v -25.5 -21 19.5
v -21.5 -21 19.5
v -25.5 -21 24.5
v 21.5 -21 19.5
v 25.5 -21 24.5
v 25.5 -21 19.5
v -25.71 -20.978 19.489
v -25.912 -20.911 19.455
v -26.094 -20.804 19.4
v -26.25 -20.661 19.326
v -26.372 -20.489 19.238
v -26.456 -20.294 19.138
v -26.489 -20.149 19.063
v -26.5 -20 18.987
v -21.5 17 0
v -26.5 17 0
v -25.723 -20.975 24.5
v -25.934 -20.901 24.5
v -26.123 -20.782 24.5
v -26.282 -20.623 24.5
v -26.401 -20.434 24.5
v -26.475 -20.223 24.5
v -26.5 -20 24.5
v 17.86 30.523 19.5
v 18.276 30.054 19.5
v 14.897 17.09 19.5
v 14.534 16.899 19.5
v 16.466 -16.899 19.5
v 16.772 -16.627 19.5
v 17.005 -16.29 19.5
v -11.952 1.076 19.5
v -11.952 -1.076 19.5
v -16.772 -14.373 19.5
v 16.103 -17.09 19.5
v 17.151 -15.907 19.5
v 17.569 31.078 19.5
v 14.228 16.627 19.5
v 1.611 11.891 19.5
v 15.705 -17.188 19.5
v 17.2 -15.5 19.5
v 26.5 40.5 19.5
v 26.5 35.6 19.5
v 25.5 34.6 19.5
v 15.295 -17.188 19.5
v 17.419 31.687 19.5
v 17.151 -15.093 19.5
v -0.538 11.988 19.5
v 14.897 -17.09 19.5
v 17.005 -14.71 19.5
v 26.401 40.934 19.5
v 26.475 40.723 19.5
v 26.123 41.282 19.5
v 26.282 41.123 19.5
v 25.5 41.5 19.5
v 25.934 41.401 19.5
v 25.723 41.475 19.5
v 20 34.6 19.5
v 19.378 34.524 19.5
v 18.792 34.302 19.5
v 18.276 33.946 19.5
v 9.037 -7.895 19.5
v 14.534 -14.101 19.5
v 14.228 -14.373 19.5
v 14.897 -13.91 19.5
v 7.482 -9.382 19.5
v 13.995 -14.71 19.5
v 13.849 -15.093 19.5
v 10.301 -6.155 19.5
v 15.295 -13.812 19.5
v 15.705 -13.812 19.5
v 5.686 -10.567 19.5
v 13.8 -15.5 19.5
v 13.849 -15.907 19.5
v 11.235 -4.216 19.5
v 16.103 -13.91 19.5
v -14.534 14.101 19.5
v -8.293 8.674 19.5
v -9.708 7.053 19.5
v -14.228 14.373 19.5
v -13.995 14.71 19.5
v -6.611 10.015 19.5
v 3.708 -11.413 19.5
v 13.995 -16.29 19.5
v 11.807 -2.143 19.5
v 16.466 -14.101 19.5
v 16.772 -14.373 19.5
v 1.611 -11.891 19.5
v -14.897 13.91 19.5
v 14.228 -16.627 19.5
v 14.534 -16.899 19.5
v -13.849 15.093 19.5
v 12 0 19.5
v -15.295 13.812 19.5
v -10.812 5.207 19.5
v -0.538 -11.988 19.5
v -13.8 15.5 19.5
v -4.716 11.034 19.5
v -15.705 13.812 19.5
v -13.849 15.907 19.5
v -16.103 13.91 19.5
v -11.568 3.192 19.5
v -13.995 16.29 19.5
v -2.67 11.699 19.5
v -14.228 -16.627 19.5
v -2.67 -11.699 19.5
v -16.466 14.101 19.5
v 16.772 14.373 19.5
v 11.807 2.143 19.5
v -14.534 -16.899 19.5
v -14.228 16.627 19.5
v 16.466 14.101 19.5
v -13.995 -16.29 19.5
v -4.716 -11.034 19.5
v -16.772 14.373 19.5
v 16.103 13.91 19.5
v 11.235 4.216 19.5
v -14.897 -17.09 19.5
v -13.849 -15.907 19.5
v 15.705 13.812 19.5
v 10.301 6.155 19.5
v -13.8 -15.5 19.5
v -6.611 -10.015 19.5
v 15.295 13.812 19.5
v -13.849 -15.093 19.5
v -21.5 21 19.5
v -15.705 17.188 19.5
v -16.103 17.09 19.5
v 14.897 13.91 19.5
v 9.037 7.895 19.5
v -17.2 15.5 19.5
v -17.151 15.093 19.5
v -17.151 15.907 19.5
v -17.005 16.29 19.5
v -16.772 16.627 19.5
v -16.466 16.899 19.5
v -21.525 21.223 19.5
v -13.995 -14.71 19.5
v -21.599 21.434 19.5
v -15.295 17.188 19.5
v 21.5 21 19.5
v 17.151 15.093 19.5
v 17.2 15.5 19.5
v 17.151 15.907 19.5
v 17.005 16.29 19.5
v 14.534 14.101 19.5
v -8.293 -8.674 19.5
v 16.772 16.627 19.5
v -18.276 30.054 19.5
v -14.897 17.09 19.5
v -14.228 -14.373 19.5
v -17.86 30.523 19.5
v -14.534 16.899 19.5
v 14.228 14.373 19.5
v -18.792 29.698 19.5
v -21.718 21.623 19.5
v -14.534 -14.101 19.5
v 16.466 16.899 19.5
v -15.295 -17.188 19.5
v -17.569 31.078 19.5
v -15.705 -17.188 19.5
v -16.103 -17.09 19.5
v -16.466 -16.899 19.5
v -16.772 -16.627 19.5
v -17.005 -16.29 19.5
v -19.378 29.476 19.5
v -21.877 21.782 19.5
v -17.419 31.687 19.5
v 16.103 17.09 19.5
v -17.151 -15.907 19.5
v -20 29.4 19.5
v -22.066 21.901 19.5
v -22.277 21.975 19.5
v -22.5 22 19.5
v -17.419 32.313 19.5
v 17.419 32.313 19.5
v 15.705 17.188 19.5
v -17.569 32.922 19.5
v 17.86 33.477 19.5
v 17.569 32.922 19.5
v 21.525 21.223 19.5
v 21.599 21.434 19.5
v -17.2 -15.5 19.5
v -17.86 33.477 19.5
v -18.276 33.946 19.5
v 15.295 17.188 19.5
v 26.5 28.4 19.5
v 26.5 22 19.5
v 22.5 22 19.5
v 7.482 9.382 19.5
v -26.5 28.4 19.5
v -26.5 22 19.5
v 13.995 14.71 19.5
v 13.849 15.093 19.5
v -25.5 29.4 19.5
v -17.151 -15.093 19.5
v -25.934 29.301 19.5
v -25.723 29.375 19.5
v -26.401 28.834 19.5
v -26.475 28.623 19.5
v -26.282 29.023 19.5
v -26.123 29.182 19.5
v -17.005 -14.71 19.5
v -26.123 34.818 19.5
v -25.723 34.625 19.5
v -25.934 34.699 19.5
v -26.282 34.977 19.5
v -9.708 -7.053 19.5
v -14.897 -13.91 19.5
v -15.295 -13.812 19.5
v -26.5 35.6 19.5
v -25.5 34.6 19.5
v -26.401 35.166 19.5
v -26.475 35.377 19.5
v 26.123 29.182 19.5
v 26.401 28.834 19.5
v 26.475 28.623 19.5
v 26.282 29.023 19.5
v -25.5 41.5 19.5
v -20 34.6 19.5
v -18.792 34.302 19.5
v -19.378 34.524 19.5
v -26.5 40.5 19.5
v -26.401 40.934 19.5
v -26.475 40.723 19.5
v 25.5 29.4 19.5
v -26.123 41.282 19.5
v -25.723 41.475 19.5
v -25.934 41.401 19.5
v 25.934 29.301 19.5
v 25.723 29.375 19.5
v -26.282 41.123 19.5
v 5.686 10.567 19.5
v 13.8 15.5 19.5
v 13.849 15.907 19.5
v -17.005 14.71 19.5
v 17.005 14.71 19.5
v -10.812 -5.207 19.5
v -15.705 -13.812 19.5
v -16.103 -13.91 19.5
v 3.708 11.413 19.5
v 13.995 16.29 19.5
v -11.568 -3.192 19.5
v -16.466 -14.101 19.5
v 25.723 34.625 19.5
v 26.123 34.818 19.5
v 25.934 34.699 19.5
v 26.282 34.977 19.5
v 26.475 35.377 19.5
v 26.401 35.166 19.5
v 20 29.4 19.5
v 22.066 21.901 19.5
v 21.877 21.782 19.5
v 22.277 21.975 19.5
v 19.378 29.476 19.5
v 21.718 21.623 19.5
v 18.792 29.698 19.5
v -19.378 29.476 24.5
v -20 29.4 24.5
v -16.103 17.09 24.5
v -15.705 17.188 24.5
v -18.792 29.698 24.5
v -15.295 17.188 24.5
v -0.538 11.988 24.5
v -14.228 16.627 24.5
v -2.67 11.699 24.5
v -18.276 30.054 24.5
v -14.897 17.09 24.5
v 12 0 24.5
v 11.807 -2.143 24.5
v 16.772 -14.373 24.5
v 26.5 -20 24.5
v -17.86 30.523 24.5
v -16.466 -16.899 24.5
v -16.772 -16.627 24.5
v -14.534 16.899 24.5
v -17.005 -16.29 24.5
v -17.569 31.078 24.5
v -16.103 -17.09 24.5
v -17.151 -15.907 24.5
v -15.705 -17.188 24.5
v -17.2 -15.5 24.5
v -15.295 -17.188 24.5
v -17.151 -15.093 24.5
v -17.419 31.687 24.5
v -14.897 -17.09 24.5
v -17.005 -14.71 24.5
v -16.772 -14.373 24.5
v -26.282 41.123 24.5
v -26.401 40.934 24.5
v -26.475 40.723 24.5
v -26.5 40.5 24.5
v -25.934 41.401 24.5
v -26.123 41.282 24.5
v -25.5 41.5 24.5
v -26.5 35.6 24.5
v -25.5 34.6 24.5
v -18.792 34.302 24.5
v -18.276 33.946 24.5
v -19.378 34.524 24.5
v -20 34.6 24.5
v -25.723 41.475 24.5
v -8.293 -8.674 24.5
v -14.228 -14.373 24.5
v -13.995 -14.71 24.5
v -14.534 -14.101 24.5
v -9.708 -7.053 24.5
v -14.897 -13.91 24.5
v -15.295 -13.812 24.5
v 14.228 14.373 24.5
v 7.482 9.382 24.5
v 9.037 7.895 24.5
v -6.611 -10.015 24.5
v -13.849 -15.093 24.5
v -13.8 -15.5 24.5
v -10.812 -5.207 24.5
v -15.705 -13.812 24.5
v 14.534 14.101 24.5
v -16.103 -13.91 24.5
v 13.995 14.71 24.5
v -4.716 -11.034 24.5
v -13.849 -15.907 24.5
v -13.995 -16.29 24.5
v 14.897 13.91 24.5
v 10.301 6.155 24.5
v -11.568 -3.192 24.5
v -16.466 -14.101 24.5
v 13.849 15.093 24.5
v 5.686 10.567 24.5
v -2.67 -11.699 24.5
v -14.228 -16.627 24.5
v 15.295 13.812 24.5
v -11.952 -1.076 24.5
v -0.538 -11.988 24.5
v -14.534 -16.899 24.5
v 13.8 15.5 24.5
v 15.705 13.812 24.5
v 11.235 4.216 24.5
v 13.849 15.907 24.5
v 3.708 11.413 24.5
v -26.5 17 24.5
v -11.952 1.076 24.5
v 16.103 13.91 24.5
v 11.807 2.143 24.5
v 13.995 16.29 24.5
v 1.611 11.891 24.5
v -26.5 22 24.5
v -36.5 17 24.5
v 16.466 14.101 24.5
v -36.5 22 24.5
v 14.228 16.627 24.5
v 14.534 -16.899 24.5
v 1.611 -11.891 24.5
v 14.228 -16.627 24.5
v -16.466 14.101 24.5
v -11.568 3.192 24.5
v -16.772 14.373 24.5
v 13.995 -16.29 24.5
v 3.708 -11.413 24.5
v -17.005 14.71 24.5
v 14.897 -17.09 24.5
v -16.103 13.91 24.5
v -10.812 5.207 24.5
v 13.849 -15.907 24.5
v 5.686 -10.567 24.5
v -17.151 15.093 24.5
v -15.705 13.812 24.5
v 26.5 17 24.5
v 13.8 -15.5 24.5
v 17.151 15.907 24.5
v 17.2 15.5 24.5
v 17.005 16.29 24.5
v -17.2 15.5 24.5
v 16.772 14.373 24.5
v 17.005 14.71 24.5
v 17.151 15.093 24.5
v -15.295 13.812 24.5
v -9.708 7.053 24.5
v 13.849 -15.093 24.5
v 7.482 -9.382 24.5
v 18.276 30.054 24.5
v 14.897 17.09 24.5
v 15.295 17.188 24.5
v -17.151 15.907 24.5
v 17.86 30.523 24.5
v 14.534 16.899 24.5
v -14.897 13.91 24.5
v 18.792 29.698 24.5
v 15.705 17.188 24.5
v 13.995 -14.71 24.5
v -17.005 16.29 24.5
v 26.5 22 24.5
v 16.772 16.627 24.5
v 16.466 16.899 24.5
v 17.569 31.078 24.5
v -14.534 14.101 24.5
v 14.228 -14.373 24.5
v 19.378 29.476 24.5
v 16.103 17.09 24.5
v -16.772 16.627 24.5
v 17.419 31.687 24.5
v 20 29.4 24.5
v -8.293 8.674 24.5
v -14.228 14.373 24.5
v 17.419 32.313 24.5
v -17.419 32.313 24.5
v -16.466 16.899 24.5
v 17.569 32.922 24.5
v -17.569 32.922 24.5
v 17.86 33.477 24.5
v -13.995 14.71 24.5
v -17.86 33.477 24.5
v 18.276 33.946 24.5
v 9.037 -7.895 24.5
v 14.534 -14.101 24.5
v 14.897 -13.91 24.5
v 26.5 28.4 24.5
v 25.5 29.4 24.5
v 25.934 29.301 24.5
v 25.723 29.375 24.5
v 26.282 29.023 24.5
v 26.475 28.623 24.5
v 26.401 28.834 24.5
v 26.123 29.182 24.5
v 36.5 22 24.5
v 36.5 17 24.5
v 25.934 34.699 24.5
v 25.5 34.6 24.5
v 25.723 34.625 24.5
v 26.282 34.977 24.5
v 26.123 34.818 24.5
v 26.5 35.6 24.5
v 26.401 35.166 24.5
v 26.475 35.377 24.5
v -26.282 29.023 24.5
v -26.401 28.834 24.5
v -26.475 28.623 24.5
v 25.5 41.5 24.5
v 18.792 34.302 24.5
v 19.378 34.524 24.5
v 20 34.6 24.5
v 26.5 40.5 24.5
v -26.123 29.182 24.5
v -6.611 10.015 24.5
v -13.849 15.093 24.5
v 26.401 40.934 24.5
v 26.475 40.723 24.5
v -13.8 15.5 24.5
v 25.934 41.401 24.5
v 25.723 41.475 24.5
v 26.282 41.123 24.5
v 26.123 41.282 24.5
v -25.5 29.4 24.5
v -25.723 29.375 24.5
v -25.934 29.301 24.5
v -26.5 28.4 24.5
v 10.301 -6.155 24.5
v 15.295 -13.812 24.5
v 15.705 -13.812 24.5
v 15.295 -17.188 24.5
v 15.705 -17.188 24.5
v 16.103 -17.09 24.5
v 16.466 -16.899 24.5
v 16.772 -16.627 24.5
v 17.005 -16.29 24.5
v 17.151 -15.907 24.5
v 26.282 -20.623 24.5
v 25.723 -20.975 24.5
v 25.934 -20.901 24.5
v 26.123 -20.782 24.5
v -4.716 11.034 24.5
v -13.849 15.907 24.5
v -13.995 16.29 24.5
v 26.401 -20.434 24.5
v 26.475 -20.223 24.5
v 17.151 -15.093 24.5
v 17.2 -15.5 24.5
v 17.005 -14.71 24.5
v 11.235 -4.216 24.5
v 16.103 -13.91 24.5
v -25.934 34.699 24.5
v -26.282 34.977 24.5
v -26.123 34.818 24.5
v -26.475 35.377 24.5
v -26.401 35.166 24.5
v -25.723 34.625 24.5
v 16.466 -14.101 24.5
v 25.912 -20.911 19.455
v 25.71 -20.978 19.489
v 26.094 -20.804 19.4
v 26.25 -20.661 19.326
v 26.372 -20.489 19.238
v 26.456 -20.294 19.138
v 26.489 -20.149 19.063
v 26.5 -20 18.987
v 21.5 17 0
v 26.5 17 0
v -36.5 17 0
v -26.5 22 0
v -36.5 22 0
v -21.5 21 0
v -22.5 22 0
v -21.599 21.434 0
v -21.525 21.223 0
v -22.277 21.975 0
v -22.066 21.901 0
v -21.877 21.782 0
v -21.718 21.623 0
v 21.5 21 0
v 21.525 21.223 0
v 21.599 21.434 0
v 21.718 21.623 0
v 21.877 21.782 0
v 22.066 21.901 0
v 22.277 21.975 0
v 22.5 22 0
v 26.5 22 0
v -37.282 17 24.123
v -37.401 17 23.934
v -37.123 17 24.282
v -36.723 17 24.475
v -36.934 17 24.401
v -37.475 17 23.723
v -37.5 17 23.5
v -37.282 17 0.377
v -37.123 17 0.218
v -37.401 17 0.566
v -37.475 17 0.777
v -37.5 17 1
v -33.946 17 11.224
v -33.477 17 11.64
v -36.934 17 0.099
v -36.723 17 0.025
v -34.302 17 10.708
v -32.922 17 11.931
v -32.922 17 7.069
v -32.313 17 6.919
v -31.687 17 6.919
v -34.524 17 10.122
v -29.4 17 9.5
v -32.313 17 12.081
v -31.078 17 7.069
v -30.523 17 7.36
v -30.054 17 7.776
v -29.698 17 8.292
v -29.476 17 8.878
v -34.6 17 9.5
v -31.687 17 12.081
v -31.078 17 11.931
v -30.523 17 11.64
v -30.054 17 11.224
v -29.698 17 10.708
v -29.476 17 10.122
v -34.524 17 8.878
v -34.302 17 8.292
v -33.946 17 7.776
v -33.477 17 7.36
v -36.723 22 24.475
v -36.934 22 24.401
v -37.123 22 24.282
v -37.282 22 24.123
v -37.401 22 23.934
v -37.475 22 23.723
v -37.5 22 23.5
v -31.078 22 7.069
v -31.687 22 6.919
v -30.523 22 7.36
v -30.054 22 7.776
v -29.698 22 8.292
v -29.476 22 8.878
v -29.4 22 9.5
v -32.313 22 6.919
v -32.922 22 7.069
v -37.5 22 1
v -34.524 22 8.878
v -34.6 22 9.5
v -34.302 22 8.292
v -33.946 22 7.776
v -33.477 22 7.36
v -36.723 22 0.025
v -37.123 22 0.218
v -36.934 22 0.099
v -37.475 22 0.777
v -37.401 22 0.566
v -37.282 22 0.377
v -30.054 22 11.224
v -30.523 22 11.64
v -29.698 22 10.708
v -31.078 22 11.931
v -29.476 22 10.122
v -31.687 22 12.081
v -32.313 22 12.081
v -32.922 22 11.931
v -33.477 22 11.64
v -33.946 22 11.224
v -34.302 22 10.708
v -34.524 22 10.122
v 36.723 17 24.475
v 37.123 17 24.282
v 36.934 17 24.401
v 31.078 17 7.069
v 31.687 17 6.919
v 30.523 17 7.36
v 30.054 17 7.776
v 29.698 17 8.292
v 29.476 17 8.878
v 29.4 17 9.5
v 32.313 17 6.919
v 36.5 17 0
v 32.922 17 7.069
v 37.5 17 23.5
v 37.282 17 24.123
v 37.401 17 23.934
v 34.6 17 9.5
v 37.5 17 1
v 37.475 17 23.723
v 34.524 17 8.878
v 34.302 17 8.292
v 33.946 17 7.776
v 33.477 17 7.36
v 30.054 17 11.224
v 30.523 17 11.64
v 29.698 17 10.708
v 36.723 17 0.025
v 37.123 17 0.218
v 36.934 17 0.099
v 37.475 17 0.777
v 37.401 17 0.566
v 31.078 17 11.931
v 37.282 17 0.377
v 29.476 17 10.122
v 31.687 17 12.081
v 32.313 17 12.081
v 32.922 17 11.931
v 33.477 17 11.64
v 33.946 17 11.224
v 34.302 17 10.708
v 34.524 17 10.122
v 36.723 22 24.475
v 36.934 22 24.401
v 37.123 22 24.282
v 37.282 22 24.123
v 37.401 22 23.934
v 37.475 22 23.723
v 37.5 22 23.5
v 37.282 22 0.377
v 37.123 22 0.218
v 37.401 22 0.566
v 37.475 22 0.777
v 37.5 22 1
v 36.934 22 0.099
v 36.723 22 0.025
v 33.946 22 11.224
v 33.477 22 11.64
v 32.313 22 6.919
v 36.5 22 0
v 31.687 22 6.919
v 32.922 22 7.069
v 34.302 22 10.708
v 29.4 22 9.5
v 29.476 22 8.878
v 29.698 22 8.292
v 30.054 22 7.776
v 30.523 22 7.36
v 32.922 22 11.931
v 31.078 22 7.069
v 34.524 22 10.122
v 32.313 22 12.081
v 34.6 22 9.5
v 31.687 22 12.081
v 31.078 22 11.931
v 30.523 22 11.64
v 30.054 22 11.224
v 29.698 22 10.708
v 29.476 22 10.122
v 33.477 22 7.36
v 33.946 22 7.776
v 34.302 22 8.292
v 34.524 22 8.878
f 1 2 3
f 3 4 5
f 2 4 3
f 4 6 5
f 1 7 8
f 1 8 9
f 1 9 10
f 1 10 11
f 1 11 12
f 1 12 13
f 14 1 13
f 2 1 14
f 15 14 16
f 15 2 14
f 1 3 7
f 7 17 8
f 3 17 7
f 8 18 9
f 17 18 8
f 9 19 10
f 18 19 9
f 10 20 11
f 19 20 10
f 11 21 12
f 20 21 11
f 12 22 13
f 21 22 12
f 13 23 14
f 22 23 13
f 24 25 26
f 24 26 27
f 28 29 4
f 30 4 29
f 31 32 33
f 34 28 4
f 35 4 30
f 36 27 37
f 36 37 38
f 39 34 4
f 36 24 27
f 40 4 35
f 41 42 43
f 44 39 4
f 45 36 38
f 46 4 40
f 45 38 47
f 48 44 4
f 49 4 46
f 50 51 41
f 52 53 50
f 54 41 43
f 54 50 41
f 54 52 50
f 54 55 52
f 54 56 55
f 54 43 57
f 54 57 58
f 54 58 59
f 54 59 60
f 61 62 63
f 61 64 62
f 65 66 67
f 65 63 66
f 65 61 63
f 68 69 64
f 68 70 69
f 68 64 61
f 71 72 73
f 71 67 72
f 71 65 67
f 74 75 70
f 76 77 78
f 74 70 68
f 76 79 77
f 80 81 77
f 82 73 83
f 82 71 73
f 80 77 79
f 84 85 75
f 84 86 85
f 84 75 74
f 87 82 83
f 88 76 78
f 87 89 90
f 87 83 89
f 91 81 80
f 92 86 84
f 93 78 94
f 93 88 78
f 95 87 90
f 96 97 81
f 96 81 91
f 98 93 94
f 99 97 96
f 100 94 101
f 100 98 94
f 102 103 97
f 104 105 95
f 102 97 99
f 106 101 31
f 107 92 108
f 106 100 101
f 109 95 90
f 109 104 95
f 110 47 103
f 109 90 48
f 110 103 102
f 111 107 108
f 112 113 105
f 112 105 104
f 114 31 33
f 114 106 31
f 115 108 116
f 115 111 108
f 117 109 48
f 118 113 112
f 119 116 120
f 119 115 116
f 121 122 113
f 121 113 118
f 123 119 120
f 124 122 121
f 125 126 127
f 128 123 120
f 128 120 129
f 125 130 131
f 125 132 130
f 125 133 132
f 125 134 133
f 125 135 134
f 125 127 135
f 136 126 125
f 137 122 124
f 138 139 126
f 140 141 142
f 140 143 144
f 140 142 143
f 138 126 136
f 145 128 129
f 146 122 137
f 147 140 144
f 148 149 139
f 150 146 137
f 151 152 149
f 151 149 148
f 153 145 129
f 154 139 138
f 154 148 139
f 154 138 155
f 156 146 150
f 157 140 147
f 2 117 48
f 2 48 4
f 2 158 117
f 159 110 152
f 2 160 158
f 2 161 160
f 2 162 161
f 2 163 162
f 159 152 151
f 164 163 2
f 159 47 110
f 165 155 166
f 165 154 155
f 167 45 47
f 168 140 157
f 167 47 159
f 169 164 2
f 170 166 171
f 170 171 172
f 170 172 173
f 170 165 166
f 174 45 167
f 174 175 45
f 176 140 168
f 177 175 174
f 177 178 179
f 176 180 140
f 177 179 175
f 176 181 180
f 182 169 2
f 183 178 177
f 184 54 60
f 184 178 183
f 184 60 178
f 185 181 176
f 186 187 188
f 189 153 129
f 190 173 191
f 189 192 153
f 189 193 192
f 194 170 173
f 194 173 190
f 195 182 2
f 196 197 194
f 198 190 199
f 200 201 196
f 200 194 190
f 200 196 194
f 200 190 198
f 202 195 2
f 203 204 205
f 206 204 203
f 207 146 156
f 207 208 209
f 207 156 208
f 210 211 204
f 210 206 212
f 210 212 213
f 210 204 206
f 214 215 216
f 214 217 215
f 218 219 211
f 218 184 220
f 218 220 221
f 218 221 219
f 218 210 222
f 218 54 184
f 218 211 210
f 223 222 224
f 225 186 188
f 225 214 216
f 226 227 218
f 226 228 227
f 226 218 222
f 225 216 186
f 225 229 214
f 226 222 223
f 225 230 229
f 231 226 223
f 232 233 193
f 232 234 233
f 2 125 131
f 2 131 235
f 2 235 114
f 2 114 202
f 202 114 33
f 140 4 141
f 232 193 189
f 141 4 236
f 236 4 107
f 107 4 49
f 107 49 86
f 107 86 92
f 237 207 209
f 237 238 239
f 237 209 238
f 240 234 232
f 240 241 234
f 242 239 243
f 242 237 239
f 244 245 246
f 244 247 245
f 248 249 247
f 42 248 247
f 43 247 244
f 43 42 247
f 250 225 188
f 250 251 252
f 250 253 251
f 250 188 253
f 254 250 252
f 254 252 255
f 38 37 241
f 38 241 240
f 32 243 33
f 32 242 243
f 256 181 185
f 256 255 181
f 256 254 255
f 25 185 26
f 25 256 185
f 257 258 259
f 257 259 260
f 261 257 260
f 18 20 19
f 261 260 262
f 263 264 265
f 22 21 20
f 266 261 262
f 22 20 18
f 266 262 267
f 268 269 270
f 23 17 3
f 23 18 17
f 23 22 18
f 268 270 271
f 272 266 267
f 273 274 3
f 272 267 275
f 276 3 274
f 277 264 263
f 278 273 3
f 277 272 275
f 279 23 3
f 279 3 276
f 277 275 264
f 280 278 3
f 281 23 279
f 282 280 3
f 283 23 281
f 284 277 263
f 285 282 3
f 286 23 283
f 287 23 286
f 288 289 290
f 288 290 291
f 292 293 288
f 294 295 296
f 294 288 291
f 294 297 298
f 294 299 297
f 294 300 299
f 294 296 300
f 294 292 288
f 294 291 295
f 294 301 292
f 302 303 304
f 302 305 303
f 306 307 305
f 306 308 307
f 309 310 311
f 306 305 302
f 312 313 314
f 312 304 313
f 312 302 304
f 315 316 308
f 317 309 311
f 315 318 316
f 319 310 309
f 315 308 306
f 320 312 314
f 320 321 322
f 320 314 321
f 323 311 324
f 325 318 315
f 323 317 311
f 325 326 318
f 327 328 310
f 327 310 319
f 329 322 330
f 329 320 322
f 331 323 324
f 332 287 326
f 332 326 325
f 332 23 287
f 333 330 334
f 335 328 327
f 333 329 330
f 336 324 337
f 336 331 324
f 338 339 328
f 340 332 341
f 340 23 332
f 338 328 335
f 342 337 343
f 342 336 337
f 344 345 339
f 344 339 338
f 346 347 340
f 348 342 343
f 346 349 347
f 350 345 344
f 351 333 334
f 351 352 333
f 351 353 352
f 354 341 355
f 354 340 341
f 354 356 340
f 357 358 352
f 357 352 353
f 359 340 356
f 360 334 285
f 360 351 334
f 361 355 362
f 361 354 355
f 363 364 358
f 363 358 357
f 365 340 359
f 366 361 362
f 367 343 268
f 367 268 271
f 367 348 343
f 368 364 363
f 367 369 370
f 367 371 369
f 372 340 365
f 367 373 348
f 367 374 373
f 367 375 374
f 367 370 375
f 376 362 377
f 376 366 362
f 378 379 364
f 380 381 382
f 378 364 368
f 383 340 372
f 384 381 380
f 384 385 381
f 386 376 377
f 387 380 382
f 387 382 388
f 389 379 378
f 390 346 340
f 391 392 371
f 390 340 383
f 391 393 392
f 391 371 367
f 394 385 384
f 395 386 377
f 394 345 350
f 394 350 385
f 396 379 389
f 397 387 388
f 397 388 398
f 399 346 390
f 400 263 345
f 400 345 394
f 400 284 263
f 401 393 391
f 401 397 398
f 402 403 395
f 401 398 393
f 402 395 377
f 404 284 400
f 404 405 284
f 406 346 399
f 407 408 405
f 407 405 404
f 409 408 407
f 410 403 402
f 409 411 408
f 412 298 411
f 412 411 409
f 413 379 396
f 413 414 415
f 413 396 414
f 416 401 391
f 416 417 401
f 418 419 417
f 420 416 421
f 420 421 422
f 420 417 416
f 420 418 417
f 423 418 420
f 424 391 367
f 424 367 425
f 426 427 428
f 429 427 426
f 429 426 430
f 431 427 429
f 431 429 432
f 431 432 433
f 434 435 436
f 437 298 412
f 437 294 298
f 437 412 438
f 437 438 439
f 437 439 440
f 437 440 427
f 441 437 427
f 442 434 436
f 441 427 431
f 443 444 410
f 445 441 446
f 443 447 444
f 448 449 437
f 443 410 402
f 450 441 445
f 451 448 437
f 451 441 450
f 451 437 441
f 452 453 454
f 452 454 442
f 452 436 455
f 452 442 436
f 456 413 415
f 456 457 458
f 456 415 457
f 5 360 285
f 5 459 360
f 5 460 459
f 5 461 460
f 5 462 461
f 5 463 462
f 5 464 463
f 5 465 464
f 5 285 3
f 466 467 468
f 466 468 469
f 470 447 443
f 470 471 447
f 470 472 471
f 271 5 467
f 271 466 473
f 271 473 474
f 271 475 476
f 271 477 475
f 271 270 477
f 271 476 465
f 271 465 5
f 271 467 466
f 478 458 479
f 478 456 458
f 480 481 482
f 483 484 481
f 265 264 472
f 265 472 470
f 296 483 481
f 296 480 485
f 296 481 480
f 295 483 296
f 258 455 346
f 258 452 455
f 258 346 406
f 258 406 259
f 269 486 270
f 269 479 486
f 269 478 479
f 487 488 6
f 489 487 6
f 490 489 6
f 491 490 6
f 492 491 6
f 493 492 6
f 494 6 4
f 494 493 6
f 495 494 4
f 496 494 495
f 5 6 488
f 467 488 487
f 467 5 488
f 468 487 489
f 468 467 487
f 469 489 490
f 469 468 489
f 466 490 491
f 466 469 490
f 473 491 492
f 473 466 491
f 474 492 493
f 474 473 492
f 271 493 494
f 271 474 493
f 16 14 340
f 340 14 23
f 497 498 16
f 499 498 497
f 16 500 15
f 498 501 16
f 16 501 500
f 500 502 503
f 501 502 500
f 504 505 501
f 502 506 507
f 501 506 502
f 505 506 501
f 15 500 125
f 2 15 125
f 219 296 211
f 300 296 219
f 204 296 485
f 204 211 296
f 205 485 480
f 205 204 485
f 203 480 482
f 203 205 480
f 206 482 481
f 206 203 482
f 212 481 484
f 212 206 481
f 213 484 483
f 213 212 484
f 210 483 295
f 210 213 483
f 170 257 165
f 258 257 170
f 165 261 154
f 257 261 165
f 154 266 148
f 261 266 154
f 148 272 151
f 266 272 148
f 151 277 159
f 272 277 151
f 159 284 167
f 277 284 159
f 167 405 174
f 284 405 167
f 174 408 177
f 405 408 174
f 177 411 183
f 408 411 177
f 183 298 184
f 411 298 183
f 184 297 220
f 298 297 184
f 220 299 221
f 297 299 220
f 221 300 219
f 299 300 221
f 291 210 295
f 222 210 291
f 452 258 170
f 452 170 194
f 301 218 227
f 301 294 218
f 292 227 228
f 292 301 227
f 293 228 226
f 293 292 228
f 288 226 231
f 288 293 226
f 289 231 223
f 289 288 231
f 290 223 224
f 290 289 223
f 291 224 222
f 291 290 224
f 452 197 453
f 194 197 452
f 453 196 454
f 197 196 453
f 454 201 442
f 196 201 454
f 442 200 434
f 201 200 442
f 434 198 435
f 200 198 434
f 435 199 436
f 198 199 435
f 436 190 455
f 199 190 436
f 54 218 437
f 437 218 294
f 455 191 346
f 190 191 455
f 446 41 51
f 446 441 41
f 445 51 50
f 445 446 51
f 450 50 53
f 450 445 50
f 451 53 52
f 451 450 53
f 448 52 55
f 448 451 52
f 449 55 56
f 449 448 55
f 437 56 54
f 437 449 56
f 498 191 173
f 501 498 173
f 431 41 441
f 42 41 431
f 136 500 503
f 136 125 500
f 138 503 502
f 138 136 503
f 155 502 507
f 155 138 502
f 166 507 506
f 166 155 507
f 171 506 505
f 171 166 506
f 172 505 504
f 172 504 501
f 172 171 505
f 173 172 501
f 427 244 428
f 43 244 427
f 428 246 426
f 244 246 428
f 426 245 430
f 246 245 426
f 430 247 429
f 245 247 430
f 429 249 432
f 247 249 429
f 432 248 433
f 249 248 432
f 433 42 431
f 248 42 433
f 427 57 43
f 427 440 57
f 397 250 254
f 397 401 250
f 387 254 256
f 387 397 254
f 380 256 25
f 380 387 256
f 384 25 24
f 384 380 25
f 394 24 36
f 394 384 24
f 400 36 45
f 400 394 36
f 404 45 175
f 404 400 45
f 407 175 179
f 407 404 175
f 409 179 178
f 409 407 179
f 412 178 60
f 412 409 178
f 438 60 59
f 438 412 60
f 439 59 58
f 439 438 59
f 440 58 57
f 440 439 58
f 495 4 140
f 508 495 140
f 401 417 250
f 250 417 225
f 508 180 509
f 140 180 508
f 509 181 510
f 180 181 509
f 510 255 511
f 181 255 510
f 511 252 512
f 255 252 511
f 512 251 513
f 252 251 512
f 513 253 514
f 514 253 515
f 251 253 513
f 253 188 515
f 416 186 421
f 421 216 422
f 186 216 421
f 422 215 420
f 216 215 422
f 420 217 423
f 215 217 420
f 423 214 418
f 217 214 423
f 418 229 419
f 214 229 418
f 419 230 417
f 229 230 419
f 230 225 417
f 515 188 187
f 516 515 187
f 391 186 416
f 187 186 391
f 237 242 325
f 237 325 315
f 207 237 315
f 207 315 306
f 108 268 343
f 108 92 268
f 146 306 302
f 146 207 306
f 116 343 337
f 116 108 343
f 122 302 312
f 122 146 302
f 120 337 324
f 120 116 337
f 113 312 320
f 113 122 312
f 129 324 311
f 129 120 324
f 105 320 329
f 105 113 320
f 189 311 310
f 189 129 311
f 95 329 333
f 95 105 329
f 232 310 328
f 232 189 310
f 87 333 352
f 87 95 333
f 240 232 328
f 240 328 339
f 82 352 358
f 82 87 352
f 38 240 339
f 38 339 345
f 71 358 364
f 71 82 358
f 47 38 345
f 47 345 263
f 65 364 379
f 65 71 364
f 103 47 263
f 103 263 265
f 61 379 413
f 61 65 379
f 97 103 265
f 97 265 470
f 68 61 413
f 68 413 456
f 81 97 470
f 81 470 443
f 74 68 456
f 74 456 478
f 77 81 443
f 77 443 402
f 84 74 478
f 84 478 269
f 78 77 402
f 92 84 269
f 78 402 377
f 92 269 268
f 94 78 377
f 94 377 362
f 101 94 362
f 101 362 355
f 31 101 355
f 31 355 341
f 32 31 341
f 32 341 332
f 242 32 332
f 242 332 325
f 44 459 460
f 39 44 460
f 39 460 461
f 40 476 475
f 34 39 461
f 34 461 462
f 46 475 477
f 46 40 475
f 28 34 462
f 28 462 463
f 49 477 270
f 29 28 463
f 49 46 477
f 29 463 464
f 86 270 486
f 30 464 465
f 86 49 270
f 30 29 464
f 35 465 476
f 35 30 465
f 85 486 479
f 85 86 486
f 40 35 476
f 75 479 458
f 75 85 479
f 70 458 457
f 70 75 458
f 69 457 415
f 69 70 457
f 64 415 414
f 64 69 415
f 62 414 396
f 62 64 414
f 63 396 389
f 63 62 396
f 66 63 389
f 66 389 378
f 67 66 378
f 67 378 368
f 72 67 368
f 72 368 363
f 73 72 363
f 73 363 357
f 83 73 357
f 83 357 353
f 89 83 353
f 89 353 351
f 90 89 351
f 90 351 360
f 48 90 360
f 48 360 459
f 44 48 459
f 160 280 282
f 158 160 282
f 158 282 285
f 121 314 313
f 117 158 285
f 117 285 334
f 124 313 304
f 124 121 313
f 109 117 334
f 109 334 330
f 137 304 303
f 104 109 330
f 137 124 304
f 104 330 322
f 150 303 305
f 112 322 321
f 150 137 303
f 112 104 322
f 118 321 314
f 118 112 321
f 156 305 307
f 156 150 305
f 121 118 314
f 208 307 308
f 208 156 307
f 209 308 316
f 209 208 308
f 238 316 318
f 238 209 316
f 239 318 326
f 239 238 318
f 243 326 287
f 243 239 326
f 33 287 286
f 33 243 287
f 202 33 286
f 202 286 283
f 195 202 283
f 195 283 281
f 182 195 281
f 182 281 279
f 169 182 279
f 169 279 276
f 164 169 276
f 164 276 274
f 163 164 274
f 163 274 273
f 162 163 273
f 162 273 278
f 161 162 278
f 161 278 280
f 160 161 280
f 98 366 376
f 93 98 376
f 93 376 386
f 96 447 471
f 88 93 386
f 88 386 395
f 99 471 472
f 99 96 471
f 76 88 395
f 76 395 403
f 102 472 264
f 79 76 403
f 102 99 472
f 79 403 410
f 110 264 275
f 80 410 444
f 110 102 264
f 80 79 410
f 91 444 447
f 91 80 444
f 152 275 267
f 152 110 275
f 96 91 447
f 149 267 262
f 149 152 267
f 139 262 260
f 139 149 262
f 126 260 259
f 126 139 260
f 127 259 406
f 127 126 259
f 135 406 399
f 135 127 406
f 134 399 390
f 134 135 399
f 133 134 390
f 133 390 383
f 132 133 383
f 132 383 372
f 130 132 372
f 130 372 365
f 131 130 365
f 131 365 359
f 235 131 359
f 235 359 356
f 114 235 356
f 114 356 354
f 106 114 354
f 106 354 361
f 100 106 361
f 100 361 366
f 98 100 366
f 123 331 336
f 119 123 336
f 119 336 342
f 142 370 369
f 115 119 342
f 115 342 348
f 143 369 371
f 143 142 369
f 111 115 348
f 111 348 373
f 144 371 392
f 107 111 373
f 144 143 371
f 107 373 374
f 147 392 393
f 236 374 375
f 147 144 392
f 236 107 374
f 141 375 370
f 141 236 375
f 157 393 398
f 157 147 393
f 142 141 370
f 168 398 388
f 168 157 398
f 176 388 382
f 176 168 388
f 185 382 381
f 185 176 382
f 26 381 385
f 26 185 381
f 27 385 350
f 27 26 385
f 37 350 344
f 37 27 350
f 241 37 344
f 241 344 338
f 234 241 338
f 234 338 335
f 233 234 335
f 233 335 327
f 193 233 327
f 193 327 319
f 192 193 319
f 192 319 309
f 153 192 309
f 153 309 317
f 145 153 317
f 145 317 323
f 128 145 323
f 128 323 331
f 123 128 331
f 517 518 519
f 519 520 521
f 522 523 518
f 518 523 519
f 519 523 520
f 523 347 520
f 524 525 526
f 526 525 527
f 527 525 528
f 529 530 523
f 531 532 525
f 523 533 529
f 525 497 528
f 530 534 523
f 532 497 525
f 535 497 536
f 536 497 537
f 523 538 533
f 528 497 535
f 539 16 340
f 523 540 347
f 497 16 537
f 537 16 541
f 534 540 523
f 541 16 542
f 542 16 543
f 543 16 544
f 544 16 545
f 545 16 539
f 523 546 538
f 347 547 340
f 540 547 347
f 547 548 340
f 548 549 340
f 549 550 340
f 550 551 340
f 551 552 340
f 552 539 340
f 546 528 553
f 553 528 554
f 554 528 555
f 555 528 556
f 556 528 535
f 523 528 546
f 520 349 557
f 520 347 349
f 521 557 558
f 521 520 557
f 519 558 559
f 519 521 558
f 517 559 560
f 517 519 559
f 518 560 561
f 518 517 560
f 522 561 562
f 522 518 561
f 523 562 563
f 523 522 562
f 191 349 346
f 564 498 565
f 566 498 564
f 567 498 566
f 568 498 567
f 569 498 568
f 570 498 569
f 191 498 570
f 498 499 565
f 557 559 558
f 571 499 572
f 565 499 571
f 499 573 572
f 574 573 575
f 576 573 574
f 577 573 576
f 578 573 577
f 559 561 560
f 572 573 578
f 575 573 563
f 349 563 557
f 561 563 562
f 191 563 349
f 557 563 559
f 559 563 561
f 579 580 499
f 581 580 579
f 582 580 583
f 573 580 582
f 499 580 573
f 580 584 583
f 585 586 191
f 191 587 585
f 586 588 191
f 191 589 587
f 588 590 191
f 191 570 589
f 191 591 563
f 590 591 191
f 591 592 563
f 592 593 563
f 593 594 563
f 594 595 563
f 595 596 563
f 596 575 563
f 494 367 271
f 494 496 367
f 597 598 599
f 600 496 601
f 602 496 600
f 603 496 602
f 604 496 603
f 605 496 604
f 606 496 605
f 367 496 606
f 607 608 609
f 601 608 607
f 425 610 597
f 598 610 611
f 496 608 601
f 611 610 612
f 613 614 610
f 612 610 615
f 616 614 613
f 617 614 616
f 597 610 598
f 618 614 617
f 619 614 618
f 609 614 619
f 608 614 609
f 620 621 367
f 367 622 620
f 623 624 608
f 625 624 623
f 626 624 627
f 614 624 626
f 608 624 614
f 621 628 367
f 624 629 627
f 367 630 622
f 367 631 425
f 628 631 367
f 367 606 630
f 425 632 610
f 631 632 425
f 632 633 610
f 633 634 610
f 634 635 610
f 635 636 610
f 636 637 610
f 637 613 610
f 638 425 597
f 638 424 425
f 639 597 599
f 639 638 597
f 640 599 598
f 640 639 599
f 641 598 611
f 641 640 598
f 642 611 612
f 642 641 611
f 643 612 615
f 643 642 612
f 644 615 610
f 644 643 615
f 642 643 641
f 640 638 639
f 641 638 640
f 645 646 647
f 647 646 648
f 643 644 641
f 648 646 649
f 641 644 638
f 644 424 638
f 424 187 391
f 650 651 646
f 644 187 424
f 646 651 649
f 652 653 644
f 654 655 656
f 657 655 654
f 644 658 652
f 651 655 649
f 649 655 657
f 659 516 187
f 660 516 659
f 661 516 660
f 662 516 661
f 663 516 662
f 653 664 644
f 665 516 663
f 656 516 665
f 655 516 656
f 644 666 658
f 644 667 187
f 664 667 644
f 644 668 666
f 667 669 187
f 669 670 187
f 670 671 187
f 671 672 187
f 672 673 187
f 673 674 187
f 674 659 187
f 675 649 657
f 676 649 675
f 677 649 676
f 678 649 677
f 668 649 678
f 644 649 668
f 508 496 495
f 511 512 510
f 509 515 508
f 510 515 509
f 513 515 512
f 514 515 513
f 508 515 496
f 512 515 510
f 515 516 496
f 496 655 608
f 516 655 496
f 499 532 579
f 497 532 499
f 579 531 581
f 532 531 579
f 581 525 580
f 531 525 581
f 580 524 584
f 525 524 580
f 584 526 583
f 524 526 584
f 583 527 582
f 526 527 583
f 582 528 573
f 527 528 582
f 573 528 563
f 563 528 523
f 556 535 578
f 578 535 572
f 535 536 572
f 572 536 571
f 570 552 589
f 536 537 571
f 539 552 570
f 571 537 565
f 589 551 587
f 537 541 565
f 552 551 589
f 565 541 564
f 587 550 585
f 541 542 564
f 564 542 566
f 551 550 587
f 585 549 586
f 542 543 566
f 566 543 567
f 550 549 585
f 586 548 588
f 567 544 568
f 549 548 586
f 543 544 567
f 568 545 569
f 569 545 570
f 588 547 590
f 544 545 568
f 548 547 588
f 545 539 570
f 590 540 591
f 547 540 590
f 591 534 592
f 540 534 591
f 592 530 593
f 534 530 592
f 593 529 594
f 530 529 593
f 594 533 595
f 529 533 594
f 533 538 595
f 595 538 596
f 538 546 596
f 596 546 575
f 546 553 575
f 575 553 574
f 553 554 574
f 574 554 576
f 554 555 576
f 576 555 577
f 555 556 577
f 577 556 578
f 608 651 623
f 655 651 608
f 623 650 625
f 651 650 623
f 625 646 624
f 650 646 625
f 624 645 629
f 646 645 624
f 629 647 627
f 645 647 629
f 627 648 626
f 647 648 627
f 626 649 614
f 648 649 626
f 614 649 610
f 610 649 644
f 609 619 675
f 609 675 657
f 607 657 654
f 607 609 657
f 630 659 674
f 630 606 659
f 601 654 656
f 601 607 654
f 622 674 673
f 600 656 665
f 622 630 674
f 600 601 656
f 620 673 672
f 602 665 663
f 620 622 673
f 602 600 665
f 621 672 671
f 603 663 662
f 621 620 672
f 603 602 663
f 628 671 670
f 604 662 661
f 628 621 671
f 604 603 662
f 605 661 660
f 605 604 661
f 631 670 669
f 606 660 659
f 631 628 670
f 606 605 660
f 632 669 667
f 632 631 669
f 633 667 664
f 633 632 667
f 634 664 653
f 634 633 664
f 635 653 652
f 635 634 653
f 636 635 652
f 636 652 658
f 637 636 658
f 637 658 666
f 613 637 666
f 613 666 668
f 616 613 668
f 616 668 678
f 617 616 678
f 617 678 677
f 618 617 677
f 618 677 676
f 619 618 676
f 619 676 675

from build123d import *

# Parameters (mm, degrees)
SKETCH_R        = 12
SKETCH_R_2      = 1.7
PAD_DEPTH       = 24.5
POCKET_DEPTH    = 19.5
POCKET001_DEPTH = 64.001
POCKET002_DEPTH = 225.811705
SKETCH004_R     = 2.6
POCKET003_DEPTH = 225.811705
FILLET_R        = 1


with BuildPart() as part:
    # Sketch → Pad (new body)
    with BuildSketch(Plane.XY):
        Polygon((-26.5, -21), (26.5, -21), (26.5, 17), (37.5, 17), (37.5, 22), (26.5, 22), (26.5, 41.5), (-26.5, 41.5), (-26.5, 22), (-37.5, 22), (-37.5, 17), (-26.5, 17), align=None)
        Circle(SKETCH_R, mode=Mode.SUBTRACT)
        with Locations((-15.5, 15.5)):
            Circle(SKETCH_R_2, mode=Mode.SUBTRACT)
        with Locations((15.5, 15.5)):
            Circle(SKETCH_R_2, mode=Mode.SUBTRACT)
        with Locations((-15.5, -15.5)):
            Circle(SKETCH_R_2, mode=Mode.SUBTRACT)
        with Locations((15.5, -15.5)):
            Circle(SKETCH_R_2, mode=Mode.SUBTRACT)
    extrude(amount=PAD_DEPTH)

    # Sketch001 (on Face18 of Pad) → Pocket (cut)
    with BuildSketch(Plane(origin=(0, 0, 0), x_dir=(1, 0, 0), z_dir=(0, 0, -1))):
        Polygon((-26.5, -41.5), (26.5, -41.5), (26.5, -22), (21.5, -22), (21.5, 21), (-21.5, 21), (-21.5, -22), (-26.5, -22), align=None)
    extrude(amount=-POCKET_DEPTH, mode=Mode.SUBTRACT)

    # Sketch002 (on Face7 of Pocket) → Pocket001 (cut, through all)
    with BuildSketch(Plane.YZ.offset(26.5)):
        Polygon((17, 0), (-21, 0), (-21, 19.5), align=None)
    extrude(amount=-POCKET001_DEPTH, mode=Mode.SUBTRACT)

    # Sketch003 (on Face6 of Pocket001) → Pocket002 (cut, through all)
    with BuildSketch(Plane.XY.offset(24.5)):
        with BuildLine():
            Line((-26.5, 34.6), (-20, 34.6))
            ThreePointArc((-20, 29.4), (-17.4, 32), (-20, 34.6))
            Line((-20, 29.4), (-26.5, 29.4))
            Line((-26.5, 29.4), (-26.5, 34.6))
        make_face()
    pocket002 = extrude(amount=-POCKET002_DEPTH, mode=Mode.SUBTRACT)

    # Sketch004 (on Face27 of Pocket002) → Pocket003 (cut, through all)
    with BuildSketch(Plane.XZ.offset(-17)):
        with Locations((-32, 9.5)):
            Circle(SKETCH004_R)
    pocket003 = extrude(amount=-POCKET003_DEPTH, mode=Mode.SUBTRACT)

    # Mirrored: Pocket003 across Sketch004 V_Axis
    add(pocket003.mirror(Plane(origin=(0, 17, 0), x_dir=(0, -1, 0), z_dir=(1, 0, 0))), mode=Mode.SUBTRACT)

    # Mirrored001: Pocket002 across Sketch003 V_Axis
    add(pocket002.mirror(Plane(origin=(0, 0, 24.5), x_dir=(0, 0, 1), z_dir=(1, 0, 0))), mode=Mode.SUBTRACT)

    # Fillet
    fillet_edges = [part.edges().sort_by_distance(p)[0] for p in [
        (-26.5, 41.5, 22),
        (-26.5, 34.6, 22),
        (-26.5, 29.4, 22),
        (26.5, 34.6, 22),
        (26.5, 41.5, 22),
        (26.5, 29.4, 22),
        (-26.5, -21, 22),
        (26.5, -21, 22),
        (-21.5, 22, 9.75),
        (21.5, 22, 9.75),
        (-37.5, 19.5, 24.5),
        (37.5, 19.5, 24.5),
        (-37.5, 19.5, 0),
        (37.5, 19.5, 0),
    ]]
    fillet(fillet_edges, radius=FILLET_R)


solid = part.part
